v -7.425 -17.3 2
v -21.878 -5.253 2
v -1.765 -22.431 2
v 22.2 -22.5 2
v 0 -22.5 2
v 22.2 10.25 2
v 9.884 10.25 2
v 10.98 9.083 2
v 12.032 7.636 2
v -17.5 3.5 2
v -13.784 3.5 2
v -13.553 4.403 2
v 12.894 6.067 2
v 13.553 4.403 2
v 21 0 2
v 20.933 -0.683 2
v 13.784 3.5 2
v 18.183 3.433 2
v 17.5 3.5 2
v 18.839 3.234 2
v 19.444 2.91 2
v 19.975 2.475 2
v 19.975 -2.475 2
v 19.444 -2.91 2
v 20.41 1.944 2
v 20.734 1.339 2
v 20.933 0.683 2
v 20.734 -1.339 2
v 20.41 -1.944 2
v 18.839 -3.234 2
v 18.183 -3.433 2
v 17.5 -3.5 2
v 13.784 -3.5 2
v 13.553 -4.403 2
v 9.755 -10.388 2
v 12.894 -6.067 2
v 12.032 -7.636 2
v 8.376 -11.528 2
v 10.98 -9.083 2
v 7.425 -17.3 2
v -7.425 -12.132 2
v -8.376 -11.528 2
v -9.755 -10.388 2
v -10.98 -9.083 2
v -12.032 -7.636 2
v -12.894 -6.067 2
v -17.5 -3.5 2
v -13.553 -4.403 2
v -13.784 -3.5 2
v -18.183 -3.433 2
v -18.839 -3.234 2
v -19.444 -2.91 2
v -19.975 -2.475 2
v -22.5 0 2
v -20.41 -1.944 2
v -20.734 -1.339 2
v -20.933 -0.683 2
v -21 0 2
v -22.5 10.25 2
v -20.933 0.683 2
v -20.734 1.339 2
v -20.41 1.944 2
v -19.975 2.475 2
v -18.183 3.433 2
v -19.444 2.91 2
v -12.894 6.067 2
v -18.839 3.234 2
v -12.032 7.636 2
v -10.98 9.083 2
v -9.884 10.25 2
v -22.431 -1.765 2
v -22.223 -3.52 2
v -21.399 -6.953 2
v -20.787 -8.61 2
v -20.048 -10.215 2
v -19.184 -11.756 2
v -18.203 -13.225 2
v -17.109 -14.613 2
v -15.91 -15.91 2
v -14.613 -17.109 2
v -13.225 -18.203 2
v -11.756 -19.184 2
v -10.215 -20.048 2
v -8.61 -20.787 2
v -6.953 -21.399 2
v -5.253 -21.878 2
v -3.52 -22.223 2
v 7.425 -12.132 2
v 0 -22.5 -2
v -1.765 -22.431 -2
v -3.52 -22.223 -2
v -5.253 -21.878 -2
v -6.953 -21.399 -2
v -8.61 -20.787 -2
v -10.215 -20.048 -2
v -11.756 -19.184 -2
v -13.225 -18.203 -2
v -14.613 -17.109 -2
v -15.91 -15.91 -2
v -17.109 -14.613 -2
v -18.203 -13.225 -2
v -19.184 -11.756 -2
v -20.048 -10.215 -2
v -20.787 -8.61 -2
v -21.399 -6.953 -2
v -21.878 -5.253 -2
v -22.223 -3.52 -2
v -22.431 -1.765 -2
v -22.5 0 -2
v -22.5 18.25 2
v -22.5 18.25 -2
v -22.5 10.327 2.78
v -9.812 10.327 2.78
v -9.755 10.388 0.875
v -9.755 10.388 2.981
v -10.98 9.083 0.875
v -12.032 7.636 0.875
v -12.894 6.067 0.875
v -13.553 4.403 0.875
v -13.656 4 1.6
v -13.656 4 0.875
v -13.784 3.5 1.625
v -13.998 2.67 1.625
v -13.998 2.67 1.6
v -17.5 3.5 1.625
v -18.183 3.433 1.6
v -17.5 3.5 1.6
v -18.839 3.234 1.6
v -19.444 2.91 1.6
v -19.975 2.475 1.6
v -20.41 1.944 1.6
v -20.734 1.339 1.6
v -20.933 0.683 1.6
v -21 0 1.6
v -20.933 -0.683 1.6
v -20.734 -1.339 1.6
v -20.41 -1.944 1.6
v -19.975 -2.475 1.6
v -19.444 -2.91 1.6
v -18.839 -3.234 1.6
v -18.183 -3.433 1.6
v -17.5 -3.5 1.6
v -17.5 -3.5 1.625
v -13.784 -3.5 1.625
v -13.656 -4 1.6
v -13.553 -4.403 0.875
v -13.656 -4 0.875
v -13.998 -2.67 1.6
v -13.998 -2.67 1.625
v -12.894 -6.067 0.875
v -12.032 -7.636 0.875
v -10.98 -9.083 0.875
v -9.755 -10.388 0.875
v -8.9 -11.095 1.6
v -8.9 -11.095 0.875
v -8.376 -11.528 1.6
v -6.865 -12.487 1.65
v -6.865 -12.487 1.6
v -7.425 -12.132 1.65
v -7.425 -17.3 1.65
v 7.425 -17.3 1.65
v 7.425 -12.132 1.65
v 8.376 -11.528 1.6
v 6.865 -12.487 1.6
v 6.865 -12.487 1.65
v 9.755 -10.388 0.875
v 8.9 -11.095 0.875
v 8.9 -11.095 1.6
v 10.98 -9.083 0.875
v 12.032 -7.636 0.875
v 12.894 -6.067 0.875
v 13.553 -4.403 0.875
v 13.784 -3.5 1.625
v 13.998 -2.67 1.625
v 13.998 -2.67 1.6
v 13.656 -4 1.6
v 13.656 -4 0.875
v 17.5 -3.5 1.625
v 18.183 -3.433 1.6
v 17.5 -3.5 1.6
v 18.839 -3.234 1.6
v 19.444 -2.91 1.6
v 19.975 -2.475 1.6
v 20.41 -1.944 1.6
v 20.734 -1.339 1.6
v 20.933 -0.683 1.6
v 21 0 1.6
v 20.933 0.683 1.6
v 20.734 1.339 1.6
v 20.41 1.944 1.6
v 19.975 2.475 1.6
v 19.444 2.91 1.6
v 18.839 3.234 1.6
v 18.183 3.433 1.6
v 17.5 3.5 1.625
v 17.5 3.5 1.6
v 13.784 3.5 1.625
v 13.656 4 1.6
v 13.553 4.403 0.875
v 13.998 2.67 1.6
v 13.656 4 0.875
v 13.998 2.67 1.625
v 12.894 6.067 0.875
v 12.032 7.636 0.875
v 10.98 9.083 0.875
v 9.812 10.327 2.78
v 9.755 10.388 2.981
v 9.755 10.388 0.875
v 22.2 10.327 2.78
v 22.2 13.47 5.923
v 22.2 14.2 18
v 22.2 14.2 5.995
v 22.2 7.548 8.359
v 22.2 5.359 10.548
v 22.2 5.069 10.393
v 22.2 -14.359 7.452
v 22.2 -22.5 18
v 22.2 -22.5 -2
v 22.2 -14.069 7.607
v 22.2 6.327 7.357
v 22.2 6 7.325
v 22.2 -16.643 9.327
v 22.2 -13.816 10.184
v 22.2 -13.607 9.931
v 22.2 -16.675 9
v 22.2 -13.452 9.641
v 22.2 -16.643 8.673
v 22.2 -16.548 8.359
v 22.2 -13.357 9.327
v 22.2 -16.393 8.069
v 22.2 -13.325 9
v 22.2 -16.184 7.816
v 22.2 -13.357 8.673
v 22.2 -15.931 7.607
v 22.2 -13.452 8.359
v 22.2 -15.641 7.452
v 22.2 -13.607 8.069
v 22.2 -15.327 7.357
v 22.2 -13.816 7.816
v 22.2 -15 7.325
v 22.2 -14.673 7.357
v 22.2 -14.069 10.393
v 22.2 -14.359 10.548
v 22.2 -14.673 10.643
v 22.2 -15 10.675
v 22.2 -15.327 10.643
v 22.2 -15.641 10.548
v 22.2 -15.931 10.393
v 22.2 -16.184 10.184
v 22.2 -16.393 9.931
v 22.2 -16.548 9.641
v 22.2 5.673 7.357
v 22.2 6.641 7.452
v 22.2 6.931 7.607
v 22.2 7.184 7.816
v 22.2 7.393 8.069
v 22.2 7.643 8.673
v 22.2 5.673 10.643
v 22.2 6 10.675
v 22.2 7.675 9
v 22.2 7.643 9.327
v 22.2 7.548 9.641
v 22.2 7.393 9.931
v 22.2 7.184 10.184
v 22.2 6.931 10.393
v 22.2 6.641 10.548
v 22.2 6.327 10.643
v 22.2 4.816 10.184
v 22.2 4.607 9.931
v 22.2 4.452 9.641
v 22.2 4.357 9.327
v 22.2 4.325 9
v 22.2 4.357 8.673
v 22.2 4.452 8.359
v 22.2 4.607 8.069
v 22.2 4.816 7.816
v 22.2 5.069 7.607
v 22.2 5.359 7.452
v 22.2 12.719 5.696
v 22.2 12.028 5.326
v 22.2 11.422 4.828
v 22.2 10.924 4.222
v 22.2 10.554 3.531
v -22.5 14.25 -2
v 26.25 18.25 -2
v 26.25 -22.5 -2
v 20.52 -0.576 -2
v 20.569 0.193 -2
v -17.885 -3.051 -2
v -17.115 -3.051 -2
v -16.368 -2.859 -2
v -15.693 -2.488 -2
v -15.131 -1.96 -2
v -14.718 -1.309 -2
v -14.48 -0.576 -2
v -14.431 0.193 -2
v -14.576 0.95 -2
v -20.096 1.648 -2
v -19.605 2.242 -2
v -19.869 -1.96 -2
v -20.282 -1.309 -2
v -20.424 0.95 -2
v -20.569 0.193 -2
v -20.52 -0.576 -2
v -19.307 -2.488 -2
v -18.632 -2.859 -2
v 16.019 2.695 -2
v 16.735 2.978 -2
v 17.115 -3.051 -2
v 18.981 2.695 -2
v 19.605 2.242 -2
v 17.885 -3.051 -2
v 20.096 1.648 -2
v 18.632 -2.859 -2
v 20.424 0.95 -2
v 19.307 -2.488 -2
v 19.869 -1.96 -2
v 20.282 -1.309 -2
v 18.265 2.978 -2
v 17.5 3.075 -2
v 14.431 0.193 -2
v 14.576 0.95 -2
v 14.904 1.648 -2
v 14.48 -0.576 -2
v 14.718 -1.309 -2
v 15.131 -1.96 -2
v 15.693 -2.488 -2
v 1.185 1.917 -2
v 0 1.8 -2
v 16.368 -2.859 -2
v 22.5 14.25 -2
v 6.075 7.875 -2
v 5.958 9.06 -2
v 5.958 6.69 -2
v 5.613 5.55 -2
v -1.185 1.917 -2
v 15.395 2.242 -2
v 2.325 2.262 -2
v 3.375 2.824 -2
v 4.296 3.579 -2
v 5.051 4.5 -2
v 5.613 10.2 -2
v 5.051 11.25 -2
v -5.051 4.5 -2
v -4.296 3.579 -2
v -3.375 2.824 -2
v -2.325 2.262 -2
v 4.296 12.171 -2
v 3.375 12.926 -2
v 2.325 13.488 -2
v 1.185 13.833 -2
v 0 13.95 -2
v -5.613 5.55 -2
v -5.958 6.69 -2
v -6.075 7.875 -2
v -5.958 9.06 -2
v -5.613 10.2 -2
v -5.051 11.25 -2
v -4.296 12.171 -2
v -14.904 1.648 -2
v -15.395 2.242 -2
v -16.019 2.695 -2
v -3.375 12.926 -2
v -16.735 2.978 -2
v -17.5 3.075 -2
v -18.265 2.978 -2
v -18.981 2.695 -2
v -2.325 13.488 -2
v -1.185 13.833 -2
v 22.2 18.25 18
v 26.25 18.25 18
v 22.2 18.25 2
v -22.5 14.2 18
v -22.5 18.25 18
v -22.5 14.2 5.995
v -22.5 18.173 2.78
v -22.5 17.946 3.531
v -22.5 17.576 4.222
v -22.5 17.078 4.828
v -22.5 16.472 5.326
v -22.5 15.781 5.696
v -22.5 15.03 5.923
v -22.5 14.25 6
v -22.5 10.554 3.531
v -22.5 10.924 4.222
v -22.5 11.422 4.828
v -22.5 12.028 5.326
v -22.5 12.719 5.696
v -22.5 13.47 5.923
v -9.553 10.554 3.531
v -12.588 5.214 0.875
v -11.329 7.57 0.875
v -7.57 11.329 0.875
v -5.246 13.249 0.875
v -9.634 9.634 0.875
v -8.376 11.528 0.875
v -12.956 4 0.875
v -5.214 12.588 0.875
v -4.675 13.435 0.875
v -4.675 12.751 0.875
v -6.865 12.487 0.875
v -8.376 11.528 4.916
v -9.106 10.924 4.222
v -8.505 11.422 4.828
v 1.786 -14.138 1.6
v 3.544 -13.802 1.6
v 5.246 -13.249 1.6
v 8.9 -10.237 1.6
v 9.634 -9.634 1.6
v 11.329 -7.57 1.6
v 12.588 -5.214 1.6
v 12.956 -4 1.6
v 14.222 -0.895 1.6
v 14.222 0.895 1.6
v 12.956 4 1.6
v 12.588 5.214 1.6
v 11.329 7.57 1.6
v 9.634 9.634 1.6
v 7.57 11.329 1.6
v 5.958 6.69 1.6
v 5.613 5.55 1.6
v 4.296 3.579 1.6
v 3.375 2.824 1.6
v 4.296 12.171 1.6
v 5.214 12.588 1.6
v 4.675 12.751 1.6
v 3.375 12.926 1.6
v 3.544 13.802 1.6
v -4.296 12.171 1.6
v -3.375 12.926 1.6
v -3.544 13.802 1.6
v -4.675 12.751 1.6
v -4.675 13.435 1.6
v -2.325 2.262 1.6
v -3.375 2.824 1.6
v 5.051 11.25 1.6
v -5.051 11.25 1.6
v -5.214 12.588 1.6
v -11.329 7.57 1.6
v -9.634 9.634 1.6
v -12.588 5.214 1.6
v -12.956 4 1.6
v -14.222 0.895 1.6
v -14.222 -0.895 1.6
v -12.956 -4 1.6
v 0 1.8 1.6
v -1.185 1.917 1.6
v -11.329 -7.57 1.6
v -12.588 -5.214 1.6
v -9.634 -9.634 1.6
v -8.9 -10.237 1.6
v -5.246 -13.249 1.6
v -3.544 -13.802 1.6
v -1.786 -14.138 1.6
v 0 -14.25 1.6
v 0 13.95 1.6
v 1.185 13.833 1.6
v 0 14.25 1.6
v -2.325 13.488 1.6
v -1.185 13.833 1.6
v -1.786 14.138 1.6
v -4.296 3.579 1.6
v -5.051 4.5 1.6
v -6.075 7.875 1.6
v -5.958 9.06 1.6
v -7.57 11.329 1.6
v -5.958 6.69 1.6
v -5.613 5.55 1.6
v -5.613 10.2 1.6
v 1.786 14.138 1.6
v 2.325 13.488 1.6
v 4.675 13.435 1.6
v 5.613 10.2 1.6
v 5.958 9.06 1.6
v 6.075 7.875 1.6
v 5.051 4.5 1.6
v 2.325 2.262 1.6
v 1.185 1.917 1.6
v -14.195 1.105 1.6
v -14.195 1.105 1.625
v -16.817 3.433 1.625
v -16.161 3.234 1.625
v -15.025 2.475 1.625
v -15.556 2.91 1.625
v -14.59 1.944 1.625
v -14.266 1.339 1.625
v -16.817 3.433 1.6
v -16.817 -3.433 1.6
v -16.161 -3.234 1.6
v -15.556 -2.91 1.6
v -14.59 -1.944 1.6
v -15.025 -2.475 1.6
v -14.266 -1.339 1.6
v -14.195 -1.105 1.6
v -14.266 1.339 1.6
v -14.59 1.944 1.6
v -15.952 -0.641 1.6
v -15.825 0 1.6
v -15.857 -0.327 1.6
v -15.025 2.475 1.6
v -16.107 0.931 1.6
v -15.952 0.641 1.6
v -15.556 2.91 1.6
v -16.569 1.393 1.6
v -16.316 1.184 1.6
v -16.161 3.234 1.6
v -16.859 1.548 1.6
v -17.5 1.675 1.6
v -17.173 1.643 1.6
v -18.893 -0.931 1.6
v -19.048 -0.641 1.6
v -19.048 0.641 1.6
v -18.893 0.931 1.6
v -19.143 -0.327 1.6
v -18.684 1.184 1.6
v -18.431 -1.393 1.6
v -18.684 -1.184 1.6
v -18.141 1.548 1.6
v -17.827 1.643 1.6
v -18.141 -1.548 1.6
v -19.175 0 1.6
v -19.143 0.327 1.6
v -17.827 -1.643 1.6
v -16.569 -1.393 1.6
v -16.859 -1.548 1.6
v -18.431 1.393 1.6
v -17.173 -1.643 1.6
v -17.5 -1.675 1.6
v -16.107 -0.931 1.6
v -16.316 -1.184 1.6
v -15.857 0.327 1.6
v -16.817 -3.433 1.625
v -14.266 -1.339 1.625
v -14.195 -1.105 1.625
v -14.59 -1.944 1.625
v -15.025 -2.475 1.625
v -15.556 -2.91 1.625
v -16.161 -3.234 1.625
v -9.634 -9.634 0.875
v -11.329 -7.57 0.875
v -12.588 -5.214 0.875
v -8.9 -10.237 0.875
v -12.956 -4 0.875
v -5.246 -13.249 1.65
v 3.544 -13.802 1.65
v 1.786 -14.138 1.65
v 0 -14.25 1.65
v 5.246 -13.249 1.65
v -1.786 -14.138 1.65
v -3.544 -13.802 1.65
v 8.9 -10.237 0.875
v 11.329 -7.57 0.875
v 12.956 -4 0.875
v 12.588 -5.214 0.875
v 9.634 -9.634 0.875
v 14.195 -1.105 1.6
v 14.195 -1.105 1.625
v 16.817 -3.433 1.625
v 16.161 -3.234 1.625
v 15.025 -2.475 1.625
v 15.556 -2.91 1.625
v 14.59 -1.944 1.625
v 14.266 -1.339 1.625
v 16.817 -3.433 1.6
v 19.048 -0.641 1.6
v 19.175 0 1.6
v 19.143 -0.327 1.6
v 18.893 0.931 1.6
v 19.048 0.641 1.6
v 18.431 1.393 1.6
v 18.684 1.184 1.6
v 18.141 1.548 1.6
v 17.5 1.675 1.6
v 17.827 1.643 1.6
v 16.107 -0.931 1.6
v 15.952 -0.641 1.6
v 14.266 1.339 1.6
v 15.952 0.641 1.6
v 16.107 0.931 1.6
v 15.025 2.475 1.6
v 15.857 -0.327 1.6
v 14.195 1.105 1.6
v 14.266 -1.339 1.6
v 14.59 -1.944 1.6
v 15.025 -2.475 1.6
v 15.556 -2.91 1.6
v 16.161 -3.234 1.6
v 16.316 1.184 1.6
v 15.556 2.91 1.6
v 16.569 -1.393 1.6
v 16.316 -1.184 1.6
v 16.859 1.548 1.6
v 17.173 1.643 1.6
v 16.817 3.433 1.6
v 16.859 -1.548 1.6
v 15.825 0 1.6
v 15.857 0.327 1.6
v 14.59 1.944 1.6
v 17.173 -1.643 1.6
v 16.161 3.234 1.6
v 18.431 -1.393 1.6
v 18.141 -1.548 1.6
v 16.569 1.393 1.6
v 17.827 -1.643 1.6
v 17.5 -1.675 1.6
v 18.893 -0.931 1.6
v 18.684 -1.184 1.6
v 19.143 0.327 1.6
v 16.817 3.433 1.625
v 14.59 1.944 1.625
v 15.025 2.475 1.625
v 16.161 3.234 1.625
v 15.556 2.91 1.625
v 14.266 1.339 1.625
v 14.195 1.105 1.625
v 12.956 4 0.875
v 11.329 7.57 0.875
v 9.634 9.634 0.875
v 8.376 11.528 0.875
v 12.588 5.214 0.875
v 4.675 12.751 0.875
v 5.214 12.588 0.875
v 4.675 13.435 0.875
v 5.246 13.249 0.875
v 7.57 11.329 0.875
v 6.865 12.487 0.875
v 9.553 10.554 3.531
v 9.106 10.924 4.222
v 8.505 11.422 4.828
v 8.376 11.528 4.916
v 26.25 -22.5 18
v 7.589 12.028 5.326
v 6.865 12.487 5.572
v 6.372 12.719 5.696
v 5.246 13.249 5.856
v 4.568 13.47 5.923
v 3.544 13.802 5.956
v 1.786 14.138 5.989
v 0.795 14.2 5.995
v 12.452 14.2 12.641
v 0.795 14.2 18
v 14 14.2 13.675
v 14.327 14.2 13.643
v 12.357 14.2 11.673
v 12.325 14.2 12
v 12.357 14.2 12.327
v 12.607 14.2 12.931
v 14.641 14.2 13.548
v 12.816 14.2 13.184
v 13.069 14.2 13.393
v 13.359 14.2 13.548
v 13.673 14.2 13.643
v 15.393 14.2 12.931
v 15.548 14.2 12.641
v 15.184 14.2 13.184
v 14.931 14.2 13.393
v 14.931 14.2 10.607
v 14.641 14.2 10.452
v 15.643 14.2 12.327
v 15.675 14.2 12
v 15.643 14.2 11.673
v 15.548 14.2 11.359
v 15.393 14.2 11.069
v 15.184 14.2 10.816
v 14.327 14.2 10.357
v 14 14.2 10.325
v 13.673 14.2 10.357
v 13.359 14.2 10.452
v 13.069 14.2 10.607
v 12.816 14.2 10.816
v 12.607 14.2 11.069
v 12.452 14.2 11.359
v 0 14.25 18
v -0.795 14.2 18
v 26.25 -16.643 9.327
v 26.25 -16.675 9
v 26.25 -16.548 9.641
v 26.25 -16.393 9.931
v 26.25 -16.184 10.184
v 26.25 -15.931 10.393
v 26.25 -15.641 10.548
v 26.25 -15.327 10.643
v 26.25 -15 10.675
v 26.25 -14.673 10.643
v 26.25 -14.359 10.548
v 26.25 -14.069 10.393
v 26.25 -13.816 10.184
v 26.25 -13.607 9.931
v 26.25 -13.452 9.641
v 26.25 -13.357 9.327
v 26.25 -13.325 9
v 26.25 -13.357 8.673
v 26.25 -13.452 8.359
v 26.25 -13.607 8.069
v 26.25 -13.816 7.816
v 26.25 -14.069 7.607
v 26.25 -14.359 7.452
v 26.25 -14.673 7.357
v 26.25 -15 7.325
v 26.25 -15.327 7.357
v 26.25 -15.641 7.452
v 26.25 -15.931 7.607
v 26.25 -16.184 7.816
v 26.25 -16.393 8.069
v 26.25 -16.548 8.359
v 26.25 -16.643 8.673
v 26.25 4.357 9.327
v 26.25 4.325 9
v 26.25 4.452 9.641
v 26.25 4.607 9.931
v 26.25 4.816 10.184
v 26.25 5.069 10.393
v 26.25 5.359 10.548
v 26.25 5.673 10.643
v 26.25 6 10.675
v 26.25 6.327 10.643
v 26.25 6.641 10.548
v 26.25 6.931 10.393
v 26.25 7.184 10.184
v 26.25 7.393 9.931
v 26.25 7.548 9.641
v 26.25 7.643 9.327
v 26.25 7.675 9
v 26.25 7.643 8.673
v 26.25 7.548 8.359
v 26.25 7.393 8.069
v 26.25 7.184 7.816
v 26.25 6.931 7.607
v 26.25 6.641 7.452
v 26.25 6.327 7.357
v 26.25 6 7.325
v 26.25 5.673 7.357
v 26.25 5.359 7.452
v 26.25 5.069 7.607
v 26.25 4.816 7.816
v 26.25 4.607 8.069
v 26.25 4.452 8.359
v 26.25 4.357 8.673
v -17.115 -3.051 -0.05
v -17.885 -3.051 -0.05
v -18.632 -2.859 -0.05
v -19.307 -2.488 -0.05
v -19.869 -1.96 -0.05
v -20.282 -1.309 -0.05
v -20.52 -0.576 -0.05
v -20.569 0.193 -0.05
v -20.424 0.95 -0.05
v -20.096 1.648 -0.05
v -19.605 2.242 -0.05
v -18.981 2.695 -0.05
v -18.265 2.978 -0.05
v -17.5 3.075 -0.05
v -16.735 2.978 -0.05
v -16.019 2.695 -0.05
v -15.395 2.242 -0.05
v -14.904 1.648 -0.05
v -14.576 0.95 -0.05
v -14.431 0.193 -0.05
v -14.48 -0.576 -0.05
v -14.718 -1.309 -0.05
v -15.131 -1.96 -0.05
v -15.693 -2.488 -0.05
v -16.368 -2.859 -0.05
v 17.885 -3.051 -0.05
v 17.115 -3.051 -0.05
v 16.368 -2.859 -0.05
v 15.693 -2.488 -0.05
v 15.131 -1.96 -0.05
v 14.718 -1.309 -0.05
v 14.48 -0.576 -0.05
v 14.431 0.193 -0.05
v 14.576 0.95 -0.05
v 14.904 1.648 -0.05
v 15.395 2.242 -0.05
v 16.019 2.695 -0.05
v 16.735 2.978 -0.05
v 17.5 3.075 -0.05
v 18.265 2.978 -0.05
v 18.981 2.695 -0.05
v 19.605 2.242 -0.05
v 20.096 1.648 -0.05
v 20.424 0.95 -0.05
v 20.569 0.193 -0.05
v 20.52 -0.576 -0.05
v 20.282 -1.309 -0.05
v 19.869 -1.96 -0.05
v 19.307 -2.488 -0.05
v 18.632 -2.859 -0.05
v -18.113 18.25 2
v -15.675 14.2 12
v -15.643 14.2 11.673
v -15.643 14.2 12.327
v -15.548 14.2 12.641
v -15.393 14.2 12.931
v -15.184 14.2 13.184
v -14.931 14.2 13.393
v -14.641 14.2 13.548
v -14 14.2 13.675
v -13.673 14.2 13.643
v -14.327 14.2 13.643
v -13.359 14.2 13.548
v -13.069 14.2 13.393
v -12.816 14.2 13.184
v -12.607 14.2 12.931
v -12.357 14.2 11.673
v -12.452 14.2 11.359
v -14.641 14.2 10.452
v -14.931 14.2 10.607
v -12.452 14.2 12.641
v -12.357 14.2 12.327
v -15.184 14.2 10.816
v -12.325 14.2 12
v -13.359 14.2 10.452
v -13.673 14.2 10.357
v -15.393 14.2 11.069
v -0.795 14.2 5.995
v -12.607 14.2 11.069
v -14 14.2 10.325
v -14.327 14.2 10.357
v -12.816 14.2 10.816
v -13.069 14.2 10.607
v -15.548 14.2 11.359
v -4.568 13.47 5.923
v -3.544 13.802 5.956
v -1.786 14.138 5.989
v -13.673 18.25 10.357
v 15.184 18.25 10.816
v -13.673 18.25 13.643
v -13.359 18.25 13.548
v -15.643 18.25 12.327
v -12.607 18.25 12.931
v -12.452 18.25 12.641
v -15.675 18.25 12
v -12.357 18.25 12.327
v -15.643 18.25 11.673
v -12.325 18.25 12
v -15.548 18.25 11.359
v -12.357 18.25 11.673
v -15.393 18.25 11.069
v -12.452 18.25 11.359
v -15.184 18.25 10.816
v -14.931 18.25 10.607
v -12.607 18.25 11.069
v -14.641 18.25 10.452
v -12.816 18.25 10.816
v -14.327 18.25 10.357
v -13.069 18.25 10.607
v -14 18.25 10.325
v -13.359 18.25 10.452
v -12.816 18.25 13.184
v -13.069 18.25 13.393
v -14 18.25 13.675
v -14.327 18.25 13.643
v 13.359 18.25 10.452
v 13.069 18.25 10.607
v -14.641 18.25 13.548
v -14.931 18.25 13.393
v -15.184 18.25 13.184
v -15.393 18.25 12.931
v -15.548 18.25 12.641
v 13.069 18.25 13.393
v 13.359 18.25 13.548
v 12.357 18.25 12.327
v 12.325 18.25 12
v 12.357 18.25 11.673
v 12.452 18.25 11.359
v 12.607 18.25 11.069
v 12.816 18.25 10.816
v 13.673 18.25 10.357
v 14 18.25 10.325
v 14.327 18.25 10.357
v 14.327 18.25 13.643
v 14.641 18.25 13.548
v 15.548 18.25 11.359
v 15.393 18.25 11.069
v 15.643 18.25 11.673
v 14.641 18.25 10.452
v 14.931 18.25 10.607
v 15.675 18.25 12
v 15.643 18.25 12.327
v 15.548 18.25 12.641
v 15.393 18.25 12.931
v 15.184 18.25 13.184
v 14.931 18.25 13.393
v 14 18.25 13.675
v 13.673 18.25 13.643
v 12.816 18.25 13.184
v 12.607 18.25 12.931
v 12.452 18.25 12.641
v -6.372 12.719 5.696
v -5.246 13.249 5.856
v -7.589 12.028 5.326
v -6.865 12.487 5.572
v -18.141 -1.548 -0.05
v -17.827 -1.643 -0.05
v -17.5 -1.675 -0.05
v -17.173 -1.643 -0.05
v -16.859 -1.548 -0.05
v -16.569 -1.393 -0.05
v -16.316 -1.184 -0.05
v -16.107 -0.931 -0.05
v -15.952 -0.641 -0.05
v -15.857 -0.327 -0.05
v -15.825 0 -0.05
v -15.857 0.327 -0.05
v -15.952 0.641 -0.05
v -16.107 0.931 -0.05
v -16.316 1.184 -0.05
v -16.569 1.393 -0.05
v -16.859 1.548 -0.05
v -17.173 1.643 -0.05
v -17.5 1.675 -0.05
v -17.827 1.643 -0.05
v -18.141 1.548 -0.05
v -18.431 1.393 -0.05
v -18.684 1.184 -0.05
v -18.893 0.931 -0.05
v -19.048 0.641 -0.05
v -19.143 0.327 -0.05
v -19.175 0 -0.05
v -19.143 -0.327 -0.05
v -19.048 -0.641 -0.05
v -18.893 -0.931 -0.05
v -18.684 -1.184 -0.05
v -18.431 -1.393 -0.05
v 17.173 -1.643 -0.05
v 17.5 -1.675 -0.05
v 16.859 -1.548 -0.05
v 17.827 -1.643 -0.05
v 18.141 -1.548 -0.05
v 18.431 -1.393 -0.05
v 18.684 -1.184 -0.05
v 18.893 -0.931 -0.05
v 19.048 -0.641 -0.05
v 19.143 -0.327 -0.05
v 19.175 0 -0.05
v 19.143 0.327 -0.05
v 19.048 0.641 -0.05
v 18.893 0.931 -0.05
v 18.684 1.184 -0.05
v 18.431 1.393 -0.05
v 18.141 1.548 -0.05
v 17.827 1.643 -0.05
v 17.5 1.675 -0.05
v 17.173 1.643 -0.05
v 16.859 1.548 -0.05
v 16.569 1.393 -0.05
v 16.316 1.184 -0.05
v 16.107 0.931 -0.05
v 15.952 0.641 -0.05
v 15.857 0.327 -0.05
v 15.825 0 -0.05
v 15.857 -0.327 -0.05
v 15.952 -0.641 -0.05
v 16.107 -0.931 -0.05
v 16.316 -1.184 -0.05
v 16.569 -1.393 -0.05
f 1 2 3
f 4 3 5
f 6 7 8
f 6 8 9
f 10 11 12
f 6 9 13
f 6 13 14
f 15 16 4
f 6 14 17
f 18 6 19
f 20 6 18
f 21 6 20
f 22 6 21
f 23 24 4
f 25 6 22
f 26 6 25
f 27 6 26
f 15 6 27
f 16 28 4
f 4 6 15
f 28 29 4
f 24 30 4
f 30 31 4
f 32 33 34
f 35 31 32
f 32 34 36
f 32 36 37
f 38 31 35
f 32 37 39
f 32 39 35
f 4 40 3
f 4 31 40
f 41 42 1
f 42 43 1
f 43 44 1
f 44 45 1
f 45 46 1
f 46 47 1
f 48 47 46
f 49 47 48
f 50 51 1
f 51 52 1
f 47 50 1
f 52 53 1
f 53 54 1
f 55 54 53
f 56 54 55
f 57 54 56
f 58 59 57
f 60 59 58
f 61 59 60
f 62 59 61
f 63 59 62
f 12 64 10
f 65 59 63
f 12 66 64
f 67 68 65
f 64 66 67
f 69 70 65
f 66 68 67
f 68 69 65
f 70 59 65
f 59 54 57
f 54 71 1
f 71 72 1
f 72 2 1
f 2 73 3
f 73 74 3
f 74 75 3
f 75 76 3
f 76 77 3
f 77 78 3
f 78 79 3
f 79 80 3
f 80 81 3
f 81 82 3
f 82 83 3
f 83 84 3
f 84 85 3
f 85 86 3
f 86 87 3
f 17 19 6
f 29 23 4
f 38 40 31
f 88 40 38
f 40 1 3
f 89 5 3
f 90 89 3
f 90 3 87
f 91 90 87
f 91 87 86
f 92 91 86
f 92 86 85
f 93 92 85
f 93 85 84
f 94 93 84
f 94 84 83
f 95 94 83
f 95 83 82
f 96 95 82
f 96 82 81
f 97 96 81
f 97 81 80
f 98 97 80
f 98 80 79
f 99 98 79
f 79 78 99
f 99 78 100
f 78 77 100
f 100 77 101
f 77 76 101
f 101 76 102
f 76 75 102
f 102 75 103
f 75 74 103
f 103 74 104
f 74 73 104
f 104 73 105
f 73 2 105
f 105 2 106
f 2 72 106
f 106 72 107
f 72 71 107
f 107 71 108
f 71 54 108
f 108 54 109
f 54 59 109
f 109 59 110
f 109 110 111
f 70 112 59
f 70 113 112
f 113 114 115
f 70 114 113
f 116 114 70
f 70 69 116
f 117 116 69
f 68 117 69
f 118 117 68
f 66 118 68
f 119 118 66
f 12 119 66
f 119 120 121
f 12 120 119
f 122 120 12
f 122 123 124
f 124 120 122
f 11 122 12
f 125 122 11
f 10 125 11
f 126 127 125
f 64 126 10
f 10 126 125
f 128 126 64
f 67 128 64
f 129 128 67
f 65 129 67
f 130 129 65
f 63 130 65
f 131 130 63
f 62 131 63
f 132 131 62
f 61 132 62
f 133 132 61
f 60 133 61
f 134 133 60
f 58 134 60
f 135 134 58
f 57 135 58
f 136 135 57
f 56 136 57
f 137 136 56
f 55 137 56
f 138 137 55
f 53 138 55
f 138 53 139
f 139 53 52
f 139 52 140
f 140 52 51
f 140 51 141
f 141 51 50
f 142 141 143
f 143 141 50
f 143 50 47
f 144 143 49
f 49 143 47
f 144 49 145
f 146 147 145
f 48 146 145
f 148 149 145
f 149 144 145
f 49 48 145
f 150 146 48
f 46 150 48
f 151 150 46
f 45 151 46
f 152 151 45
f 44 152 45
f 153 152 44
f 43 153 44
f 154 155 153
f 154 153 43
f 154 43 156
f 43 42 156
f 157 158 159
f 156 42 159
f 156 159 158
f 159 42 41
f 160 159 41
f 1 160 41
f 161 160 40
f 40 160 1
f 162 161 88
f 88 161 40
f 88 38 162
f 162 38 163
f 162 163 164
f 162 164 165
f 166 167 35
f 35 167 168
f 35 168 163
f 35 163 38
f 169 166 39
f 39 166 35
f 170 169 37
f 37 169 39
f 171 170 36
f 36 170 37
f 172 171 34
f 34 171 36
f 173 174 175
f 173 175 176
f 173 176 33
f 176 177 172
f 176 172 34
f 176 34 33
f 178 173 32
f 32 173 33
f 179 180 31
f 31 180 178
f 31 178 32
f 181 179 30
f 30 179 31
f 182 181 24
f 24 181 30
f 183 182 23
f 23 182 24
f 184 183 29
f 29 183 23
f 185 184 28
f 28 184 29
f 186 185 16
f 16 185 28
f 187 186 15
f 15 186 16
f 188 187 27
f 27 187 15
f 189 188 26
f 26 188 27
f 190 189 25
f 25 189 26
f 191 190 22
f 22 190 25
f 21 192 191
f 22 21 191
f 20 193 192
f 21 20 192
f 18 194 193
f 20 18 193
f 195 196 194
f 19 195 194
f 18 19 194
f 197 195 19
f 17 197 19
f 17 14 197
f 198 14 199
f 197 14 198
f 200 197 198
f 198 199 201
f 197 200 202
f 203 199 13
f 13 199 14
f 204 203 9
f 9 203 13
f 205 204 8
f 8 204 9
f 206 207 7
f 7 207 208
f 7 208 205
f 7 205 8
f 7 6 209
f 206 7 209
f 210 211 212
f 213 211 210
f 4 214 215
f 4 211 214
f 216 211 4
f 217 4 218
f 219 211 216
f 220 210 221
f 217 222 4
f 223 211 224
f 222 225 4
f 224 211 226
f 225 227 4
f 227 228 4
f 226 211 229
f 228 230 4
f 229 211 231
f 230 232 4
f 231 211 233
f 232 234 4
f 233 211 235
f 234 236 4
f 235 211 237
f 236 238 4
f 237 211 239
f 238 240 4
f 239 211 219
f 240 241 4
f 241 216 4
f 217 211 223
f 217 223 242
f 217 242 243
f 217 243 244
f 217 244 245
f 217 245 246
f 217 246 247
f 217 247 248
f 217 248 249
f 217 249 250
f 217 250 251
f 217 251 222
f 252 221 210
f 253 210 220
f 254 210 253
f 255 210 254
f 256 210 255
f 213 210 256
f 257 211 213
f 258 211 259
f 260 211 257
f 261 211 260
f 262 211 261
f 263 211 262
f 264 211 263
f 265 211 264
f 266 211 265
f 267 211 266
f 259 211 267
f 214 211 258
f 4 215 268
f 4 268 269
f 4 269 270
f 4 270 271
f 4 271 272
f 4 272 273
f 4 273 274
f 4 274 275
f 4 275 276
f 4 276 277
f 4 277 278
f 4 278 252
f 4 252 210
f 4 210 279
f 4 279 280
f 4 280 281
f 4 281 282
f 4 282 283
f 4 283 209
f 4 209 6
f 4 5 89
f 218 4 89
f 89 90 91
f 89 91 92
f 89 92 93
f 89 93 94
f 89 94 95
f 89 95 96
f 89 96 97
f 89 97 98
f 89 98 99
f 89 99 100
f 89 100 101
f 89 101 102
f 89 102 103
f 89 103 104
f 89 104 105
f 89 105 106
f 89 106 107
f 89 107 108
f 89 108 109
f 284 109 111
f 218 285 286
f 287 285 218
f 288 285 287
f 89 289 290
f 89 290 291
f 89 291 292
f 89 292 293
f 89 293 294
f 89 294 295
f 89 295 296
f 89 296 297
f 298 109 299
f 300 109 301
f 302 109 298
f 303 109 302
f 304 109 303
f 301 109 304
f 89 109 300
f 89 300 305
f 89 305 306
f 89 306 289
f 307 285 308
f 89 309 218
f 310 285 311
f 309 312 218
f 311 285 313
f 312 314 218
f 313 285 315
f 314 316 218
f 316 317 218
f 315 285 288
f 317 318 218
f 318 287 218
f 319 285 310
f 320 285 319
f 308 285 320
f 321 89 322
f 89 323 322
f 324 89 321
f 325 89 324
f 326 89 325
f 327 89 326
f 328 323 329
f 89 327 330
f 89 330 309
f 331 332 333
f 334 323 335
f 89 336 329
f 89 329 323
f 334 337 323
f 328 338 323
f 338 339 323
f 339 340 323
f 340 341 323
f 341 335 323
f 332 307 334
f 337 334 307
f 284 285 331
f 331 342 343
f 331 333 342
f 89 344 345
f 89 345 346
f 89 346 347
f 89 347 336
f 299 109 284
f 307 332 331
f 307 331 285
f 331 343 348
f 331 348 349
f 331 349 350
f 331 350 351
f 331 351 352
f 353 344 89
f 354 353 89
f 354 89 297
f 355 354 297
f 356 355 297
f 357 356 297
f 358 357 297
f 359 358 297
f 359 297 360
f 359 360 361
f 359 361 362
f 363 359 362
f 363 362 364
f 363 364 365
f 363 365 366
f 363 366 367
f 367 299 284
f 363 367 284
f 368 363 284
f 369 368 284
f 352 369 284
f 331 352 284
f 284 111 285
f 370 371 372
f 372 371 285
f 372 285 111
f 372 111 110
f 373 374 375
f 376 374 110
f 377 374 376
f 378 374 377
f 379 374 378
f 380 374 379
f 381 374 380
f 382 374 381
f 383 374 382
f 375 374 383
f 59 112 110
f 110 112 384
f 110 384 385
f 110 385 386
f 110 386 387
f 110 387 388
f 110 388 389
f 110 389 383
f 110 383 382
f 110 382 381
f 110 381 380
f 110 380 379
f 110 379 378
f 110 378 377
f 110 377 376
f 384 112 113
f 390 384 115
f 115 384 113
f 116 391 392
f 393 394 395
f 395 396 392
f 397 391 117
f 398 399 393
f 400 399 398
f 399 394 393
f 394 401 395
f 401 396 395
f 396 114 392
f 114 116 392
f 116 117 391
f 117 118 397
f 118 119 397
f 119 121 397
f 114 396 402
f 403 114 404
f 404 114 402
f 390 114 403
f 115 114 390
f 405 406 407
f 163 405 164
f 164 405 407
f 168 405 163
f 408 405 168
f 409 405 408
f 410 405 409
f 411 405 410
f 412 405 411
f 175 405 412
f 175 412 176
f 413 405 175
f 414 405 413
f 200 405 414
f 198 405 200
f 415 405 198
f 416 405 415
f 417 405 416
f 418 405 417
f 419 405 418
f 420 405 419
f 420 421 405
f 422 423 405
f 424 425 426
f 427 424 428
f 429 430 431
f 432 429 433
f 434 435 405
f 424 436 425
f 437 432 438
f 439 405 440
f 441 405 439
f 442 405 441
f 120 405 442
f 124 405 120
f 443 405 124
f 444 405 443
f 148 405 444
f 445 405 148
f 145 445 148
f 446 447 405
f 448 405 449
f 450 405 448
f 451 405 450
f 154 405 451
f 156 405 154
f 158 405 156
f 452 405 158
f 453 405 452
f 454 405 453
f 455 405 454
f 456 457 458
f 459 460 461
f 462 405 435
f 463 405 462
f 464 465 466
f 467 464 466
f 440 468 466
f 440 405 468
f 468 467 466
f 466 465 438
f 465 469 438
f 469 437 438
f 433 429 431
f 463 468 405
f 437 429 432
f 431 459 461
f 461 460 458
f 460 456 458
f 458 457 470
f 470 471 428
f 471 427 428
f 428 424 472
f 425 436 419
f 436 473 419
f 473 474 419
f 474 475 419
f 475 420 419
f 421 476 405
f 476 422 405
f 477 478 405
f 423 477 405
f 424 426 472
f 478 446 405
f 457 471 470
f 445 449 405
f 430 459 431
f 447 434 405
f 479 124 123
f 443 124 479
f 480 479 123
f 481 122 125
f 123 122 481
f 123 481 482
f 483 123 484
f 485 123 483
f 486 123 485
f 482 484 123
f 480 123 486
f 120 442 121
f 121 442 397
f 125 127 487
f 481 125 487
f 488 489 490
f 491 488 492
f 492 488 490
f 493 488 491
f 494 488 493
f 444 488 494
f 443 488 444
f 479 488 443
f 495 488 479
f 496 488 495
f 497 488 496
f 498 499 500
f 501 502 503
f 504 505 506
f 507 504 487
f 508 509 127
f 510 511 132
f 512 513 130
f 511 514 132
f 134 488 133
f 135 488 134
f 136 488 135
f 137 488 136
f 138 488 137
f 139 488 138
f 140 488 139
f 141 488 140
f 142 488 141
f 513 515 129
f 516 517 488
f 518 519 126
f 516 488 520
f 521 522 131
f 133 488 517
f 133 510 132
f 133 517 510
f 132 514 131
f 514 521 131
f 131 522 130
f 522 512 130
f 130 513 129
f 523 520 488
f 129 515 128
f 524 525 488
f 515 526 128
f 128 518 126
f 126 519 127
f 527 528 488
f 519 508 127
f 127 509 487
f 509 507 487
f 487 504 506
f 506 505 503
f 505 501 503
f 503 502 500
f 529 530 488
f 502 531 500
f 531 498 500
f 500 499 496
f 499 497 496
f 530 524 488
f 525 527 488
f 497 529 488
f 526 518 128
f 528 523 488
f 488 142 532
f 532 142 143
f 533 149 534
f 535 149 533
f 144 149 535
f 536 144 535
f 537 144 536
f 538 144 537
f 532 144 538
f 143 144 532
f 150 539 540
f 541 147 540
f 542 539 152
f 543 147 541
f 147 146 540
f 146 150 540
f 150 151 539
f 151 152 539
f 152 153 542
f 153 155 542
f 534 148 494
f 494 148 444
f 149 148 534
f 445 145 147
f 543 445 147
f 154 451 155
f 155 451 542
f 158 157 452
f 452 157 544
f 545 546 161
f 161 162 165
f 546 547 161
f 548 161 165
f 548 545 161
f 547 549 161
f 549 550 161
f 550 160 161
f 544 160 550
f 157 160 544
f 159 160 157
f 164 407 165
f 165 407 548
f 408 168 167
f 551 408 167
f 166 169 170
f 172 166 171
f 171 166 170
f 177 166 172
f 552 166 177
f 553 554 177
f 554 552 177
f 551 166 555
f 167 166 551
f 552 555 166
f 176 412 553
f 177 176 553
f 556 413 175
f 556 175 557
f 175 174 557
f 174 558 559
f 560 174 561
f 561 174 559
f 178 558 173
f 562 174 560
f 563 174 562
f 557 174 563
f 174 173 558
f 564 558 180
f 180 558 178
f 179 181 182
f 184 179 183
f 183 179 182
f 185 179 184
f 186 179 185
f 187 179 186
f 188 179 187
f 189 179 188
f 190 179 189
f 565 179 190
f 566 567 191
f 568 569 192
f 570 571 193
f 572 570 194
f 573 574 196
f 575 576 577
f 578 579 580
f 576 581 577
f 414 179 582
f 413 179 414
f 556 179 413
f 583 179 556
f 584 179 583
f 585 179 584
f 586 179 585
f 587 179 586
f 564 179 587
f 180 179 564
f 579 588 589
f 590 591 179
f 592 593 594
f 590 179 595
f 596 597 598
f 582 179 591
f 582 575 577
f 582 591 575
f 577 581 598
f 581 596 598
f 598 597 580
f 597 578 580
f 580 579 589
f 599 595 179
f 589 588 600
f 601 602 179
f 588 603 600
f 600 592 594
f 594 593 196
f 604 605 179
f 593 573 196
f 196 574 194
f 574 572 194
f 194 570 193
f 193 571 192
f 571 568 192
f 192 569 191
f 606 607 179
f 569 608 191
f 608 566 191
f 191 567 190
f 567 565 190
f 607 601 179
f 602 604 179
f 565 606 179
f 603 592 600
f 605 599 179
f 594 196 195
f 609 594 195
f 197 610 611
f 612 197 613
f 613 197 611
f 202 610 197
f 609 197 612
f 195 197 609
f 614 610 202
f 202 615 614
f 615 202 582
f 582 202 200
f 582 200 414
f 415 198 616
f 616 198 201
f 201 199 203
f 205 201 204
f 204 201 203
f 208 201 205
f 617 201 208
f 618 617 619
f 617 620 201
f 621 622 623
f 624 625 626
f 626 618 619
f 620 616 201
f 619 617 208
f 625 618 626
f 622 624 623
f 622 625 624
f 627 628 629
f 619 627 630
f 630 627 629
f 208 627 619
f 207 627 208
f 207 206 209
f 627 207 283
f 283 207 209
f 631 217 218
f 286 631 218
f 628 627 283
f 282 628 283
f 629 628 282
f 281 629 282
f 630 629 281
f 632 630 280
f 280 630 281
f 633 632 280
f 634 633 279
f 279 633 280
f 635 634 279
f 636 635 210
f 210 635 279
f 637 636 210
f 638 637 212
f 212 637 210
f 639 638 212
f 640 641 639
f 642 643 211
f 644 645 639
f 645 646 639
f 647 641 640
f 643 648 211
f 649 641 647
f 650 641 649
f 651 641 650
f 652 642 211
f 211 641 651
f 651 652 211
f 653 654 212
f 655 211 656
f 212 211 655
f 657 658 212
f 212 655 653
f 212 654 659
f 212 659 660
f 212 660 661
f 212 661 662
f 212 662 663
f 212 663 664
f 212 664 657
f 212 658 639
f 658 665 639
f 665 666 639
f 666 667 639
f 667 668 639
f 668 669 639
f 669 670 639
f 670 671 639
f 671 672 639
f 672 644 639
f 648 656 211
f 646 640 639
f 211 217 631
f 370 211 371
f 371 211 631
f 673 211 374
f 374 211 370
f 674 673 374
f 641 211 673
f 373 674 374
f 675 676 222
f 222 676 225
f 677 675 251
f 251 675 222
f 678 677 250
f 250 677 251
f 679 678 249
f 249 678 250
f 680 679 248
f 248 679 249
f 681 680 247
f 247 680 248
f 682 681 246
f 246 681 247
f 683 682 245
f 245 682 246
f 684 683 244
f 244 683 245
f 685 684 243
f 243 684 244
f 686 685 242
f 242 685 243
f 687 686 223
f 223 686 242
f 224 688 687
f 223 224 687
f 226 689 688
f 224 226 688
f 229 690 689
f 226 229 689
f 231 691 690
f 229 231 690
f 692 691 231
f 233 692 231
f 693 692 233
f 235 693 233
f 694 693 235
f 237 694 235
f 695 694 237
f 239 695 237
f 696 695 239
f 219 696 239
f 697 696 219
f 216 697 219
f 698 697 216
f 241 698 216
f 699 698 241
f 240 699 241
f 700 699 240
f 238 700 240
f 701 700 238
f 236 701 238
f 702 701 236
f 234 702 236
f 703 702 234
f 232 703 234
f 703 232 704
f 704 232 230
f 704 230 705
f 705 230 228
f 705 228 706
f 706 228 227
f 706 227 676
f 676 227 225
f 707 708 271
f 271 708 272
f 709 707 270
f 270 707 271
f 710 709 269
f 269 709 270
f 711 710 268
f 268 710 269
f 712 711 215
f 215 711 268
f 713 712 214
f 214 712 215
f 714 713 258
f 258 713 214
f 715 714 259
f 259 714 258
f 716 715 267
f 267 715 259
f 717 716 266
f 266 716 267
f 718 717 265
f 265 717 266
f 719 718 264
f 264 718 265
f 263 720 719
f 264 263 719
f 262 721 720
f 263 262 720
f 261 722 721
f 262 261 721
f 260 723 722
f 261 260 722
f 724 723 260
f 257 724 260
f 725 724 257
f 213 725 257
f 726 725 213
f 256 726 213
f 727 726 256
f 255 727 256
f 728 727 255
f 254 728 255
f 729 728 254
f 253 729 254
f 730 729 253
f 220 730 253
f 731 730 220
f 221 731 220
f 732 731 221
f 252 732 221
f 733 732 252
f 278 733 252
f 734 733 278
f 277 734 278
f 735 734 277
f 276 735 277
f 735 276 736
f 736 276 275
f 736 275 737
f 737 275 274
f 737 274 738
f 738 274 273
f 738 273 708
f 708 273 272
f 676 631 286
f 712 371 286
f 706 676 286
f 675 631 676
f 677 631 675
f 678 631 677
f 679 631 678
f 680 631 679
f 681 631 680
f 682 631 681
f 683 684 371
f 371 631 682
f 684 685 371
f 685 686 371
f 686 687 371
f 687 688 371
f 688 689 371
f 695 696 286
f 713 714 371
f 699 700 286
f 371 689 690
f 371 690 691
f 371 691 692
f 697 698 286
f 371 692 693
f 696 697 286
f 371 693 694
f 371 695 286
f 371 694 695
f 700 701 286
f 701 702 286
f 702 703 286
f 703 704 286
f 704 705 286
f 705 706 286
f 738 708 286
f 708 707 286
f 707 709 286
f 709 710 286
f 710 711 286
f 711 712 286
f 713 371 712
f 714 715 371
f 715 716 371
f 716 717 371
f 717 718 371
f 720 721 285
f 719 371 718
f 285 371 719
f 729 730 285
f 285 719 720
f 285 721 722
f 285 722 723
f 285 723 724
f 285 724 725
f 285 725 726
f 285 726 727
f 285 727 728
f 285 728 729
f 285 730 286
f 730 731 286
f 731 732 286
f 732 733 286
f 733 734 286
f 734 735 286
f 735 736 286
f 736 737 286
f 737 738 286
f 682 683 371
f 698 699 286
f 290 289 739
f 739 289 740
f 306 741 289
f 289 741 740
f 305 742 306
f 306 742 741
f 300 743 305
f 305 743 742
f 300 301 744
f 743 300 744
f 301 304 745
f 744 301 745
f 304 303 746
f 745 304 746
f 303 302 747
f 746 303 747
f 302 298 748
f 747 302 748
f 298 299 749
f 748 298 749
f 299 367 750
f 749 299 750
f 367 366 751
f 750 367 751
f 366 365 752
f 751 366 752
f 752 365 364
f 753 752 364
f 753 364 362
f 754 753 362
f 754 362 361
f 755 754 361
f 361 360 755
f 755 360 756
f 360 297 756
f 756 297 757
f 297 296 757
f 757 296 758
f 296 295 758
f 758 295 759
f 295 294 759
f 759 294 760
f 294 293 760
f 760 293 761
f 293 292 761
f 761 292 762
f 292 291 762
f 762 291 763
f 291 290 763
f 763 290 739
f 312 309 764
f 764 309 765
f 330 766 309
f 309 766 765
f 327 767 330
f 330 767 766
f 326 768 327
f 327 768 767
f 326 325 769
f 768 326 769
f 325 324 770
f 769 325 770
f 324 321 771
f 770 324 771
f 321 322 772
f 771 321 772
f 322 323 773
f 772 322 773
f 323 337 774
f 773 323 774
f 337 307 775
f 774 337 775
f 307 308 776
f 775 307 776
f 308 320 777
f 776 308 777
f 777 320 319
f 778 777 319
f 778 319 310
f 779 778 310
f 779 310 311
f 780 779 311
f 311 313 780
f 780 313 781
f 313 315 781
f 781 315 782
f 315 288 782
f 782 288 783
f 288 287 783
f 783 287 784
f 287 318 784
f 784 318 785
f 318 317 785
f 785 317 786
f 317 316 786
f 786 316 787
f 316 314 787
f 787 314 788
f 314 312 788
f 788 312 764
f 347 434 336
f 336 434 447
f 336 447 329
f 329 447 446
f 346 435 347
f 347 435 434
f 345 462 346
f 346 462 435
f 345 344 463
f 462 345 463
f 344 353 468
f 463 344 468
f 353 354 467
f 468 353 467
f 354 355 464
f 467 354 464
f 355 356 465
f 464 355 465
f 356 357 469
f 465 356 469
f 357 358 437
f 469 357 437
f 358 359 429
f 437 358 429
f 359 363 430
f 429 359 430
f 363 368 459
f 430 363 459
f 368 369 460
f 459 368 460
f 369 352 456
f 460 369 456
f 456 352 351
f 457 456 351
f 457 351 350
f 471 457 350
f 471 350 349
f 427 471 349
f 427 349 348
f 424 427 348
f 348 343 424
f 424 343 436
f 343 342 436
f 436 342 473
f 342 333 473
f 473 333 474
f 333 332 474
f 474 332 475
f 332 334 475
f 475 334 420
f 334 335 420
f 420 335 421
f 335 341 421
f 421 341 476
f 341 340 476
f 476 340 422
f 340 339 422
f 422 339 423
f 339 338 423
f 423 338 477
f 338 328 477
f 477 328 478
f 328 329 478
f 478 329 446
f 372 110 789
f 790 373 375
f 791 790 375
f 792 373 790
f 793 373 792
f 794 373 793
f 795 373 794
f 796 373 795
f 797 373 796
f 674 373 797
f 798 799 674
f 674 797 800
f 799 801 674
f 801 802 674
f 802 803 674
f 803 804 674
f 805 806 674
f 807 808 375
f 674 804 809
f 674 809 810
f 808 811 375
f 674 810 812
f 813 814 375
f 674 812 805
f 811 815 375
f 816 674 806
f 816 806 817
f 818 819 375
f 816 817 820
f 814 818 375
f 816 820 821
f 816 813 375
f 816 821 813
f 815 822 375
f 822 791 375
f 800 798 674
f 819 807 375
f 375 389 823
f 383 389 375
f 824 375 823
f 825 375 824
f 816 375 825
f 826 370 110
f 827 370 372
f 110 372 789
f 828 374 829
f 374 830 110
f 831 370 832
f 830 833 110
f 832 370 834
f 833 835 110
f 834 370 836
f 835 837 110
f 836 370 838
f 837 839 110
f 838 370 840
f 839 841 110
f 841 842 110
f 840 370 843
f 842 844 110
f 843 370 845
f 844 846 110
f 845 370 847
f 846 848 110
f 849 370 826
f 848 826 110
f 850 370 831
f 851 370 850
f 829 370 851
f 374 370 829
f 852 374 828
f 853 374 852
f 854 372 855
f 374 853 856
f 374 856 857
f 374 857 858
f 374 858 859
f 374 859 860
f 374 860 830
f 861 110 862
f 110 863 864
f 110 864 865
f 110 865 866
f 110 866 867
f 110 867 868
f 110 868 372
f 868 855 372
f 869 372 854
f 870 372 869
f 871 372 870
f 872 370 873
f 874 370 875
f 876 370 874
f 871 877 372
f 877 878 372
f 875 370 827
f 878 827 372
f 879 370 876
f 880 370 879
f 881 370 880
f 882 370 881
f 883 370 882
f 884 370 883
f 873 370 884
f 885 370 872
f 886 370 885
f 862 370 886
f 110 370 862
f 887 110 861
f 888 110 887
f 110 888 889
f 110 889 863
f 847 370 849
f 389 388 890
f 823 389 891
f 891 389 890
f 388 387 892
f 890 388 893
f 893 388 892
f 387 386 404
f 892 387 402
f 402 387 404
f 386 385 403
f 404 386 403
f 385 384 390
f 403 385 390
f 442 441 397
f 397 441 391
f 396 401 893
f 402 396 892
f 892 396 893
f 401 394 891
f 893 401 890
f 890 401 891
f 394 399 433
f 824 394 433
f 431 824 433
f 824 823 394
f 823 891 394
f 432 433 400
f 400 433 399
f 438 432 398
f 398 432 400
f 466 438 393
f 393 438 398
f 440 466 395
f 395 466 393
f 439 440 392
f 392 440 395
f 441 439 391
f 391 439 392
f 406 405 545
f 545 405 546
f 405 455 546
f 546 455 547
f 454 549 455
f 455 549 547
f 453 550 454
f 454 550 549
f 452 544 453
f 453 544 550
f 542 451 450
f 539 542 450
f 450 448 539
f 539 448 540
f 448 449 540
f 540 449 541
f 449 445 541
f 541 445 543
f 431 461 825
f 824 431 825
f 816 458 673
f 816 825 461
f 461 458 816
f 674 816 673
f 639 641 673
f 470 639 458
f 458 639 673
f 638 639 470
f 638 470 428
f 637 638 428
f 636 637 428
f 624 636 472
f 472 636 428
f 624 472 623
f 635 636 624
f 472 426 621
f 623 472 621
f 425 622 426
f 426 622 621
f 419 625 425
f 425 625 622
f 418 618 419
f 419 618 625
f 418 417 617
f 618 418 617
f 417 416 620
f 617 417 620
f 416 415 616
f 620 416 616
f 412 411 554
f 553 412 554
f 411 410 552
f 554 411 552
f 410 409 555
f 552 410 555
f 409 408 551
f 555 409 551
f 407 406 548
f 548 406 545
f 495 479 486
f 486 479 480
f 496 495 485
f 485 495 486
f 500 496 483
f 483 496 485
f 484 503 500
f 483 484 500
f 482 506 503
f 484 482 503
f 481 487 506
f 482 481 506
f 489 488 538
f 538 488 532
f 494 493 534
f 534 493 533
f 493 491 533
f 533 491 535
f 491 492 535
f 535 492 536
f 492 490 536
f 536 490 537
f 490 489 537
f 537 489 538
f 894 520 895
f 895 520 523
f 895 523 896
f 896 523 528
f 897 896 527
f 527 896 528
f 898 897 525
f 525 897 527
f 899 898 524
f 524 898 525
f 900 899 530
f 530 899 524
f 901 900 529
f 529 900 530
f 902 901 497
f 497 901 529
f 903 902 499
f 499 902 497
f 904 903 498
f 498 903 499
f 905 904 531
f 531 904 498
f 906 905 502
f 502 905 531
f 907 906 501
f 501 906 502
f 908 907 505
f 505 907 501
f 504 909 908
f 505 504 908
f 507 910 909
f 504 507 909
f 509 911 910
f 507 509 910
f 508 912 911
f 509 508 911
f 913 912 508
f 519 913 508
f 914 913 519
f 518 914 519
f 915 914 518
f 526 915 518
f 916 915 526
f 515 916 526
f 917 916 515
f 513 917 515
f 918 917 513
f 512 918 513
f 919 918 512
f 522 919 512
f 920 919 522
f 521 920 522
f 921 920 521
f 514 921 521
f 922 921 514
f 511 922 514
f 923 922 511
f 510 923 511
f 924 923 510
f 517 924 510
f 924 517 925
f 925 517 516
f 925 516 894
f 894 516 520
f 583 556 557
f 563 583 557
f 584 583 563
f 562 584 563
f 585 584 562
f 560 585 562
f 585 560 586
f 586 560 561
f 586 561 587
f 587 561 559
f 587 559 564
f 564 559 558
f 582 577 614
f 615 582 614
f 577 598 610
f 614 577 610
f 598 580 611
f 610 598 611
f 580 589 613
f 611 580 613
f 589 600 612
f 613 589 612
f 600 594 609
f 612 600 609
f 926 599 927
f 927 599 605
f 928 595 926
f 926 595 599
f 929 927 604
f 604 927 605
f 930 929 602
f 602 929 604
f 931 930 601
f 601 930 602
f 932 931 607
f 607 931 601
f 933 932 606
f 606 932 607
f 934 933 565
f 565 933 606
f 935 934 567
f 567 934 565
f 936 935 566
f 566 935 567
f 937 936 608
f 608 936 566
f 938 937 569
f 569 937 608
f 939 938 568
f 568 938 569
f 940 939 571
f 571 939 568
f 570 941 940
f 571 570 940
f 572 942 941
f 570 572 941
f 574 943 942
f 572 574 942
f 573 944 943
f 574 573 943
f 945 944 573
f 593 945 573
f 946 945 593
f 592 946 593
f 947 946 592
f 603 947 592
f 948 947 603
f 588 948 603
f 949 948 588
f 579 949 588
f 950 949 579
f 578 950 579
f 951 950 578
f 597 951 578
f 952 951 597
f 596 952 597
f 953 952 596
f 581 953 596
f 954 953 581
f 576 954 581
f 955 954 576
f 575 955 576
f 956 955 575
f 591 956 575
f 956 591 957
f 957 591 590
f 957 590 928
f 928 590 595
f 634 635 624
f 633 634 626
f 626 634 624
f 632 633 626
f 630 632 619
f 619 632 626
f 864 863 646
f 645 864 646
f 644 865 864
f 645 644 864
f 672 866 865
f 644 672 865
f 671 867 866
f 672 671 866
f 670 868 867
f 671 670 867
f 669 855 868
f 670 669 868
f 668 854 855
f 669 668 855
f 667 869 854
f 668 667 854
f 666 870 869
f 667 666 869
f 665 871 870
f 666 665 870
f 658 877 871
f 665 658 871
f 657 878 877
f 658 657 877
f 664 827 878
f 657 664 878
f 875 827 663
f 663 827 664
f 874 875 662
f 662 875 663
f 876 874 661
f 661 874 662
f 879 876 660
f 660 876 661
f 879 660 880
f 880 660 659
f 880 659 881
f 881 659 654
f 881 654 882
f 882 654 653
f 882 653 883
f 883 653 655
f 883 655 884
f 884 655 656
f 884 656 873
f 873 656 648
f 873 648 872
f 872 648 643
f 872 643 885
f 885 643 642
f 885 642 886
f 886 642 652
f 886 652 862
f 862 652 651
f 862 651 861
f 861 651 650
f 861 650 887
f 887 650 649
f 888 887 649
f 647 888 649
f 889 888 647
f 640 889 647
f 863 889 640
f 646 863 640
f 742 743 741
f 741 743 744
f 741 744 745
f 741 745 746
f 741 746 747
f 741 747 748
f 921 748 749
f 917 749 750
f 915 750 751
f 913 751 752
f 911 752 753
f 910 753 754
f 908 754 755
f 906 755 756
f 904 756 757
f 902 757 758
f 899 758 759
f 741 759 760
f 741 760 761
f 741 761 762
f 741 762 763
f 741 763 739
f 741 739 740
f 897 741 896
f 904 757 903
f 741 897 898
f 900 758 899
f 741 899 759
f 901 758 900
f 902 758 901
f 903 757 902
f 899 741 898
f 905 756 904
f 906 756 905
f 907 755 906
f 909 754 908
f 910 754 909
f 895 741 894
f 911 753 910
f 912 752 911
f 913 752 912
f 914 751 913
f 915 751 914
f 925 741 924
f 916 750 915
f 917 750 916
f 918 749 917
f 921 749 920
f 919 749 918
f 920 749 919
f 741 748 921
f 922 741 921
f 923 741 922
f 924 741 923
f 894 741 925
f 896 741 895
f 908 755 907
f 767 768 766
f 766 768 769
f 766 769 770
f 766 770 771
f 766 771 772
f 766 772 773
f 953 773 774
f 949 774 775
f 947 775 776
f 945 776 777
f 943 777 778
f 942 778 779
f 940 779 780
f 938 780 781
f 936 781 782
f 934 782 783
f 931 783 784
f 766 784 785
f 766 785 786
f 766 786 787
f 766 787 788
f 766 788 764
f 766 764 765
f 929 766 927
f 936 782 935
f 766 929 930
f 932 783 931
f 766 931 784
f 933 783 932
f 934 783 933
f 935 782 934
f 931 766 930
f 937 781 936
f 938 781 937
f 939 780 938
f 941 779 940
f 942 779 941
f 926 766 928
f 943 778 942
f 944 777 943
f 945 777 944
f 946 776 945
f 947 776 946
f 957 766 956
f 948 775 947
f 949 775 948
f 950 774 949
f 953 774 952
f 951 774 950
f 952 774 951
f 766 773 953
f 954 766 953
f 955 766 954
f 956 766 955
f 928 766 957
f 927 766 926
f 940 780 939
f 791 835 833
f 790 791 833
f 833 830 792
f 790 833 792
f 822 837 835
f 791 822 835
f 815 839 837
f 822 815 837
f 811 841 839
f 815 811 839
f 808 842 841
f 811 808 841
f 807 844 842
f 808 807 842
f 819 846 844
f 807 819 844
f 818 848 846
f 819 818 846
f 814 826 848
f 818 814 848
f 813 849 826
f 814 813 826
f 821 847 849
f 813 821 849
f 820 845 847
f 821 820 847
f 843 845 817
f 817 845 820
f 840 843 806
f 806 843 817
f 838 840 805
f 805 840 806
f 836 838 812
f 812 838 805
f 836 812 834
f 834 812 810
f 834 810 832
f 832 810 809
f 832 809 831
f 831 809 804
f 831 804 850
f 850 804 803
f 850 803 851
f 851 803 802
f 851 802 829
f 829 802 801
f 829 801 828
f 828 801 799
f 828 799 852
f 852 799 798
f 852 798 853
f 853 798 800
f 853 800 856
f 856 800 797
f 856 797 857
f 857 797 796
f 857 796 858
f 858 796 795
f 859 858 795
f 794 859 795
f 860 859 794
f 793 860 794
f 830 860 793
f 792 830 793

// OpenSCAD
// Bracket for  28BYJ-48 stepper motor
// 28BYJ-48 model from RGriffoGoes www.thingiverse.com/thing:204734
// added motor details by J.Beale 21 July 2014
// Bracket v.3 by J.Beale 10 Aug 2014

slop = 0.25;  // printer tolerance

// =========================================================
// stepper motor body model

MBH = 18.8;   // motor body height
MBD = 28.25+slop;  // motor body OD
SBD = 9.1+slop;    // shaft boss OD
SBH = 1.45;   // shaft boss height above motor body
SBO = 7.875;  // offset of shaft/boss center from motor center
//SHD = 4.93+slop*2;   // motor shaft OD+ countersink for boss
SHD = 11.9+slop;   // motor shaft OD (larger clearance hole)
SHDF = 3.0;   // motor shaft diameter, across flats
SHHF = 6.0;   // motor shaft flats height, or depth in from end
SHHF = 0.0;   // assume round shaft for purposes of bracket
SHH = 9.75;   // height of shaft above motor body 

MBFH = 0.7;   // height of body edge flange protruding above surface
MBFW = 1.0+slop;   // width of edge flange
MBFNW = 8;    // width of notch in edge flange
MBFNW2 = 17.8;  // width of edge flange notch above wiring box

MHCC = 35.0;  // mounting hole center-to-center
MTH  = 0.8;   // mounting tab thickness
MTW  = 7.0;   // mounting tab width
// MTHID = 4.0;  // mounting tab hole inner diameter
MTHID = 3.0;  // mounting tab hole inner diameter
WBH  = 16.7;  // plastic wiring box height
WBW  = 14.6+slop;  // plastic wiring box width
WBD  = 31.3+slop;  // body diameter to outer surface of wiring box

WRD = 1.0;     // diameter of electrical wires
WRL = 30;      // length of electrical wires
WRO = 2.2;		// offset of wires below top motor surface
// =========================================================
// corner bracket for motor

MSOD = 5.9 + slop;  // M3 mounting screw head diameter
MSTH = 2.0;  // M3 screw head thickness (for countersink)
//MSTH = 0; // set to zero for no screwhead countersink
MSSD = 3.1 + slop;  // M3 screw diameter clearance hole
Bthick = 4;  // thickness of bracket
BFwidth = 20; // bottom flange width
BFZboff = 12;  // bottom flange bolt offset along Z axis
SFZboff = 9;  // side flange bolt offset along Z axis
BFboff = MHCC*0.4;  // bottom flange bolt offset
Bdia = (MHCC+10);  // diameter of bracket face

// =========================================================
fn = 80;
eps = 0.05;   // small number to avoid coincident faces


module StepMotor28BYJ()
{
  difference(){
    union(){
	   color("gray") translate([0,0,-(MBH+MBFH)/2])
		  difference() {  // flange at top rim
         cylinder(h = MBFH+eps, r = MBD/2, center = true, $fn = 50);
         cylinder(h = MBFH+2*eps, r = (MBD-MBFW)/2, center = true, $fn = 32);
			cube([MBFNW,MHCC,MBFH*2],center=true); // notches in rim
			cube([MBD+2*MBFW,SBD,MBFH*2],center=true);
		   translate([-MBD/2,0,0]) cube([MBD,MBFNW2,MBFH*2],center=true);
        }
		color("gray") // motor body
			cylinder(h = MBH, r = MBD/2, center = true, $fn = 50);
		color("gray") translate([SBO,0,-SBH])	// shaft boss
			cylinder(h = MBH, r = SBD/2, center = true, $fn = 32);

		translate([SBO,0,-SHH])	// motor shaft
        difference() {
			color("gold") cylinder(h = MBH, r = SHD/2, center = true, $fn = 32);
				// shaft flats
		   color("red") translate([(SHD+SHDF)/2,0,-(eps+MBH-SHHF)/2]) 
				cube([SHD,SHD,SHHF], center = true);
		   color("red") translate([-(SHD+SHDF)/2,0,-(eps+MBH-SHHF)/2]) 
				cube([SHD,SHD,SHHF], center = true);
        }


		color("Silver") translate([0,0,-(MBH-MTH-eps)/2]) // mounting tab 
			cube([MTW,MHCC,MTH], center = true);				
		color("Silver") translate([0,MHCC/2,-(MBH-MTH)/2]) // mt.tab rounded end
			cylinder(h = MTH, r = MTW/2, center = true, $fn = 32);
		color("Silver") translate([0,-MHCC/2,-(MBH-MTH)/2]) // mt.tab rounded end
			cylinder(h = MTH, r = MTW/2, center = true, $fn = 32);


		color("blue") translate([-(WBD-MBD),0,eps-(MBH-WBH)/2]) // plastic wire box
			cube([MBD,WBW,WBH], center = true);
	   color("blue") translate([-2,0,0])	
			cube([24.5,16,15], center = true);
		}

				// mounting holes in tabs on side
		color("red") translate([0,MHCC/2,-MBH/2])	
				cylinder(h = 2, r = MTHID/2, center = true, $fn = 32);
		color("red") translate([0,-MHCC/2,-MBH/2])	
				cylinder(h = 2, r = MTHID/2, center = true, $fn = 32);
		}
}

module MOT() {
 translate([0,0,-MBH/2]) 
 rotate([180,0,0]) StepMotor28BYJ();  // motor body (without wires)
}


module bracket() {
difference() {
 union() {
  translate([0,0,-2]) cylinder(h=Bthick, r=Bdia/2, $fn=fn);  // round face
  translate([-eps + MBD/2,-Bdia/2,-BFwidth+Bthick/2]) 
		cube([Bthick+eps,Bdia,BFwidth]); // bottom flange
  translate([-0,-Bdia/2,-Bthick/2]) 
	cube([Bdia,Bdia,Bthick]); // square edge joining round face to bt. flange
  translate([MBD/2,Bdia/2,-Bthick/2]) rotate([90,0,0]) 
	cylinder(r=Bthick,h=Bdia,$fn=32); // round fillet at flange

  translate([-Bdia/2,-eps + (MBD)/2 + Bthick*2,-BFwidth+Bthick/2]) 
		cube([Bdia,Bthick+eps,BFwidth]); // side flange
  translate([-0,0,-Bthick/2]) rotate([0,0,90])
	cube([Bdia/2,Bdia/2,Bthick]); // square joining round face to side flange
 }
 union() {
   translate([4+MBD/2,-MBD,-MBD]) cube([MBD*2,MBD*2,MBD*2]);
   translate([0,MHCC/2,-10])	// motor mounting bolt
				cylinder(h = 30, r = MSSD/2, center = true, $fn = 32);
   translate([0,-MHCC/2,-10])	// motor mounting bole
				cylinder(h = 30, r = MSSD/2, center = true, $fn = 32);
   translate([10,BFboff,-BFZboff]) rotate([0,90,0]) 	// bt.flange mounting bolt
				cylinder(h = 30, r = MSSD/2, center = true, $fn = 32);
   translate([10,-BFboff,-BFZboff]) rotate([0,90,0]) 	// bt.flange mounting bolt
				cylinder(h = 30, r = MSSD/2, center = true, $fn = 32);

   translate([6,MHCC/2,-SFZboff]) rotate([0,90,90]) 	// side flange mounting bolt
				cylinder(h = 30, r = MSSD/2, center = true, $fn = 32);
   translate([-15,MHCC/2,-SFZboff]) rotate([90,0,0]) 	// side flange mounting bolt
				cylinder(h = 30, r = MSSD/2, center = true, $fn = 32);


   color("white") translate([0,MHCC/2,((Bthick/2) - MSTH + eps)]) 
	 cylinder(r=MSOD/2, h=MSTH, $fn=25); // motor screw countersink
   color("white") translate([0,-MHCC/2,((Bthick/2) - MSTH + eps)])  
	 cylinder(r=MSOD/2, h=MSTH, $fn=25); // motor screw countersink

   translate([0,0,-1.6]) MOT(); // body of motor
   //translate([0,0,-10]) cube([50,50,50]); // DEBUG cutaway view
 }
}
} // end module()

rotate([180,0,90]) 
  bracket();  // show the motor bracket
